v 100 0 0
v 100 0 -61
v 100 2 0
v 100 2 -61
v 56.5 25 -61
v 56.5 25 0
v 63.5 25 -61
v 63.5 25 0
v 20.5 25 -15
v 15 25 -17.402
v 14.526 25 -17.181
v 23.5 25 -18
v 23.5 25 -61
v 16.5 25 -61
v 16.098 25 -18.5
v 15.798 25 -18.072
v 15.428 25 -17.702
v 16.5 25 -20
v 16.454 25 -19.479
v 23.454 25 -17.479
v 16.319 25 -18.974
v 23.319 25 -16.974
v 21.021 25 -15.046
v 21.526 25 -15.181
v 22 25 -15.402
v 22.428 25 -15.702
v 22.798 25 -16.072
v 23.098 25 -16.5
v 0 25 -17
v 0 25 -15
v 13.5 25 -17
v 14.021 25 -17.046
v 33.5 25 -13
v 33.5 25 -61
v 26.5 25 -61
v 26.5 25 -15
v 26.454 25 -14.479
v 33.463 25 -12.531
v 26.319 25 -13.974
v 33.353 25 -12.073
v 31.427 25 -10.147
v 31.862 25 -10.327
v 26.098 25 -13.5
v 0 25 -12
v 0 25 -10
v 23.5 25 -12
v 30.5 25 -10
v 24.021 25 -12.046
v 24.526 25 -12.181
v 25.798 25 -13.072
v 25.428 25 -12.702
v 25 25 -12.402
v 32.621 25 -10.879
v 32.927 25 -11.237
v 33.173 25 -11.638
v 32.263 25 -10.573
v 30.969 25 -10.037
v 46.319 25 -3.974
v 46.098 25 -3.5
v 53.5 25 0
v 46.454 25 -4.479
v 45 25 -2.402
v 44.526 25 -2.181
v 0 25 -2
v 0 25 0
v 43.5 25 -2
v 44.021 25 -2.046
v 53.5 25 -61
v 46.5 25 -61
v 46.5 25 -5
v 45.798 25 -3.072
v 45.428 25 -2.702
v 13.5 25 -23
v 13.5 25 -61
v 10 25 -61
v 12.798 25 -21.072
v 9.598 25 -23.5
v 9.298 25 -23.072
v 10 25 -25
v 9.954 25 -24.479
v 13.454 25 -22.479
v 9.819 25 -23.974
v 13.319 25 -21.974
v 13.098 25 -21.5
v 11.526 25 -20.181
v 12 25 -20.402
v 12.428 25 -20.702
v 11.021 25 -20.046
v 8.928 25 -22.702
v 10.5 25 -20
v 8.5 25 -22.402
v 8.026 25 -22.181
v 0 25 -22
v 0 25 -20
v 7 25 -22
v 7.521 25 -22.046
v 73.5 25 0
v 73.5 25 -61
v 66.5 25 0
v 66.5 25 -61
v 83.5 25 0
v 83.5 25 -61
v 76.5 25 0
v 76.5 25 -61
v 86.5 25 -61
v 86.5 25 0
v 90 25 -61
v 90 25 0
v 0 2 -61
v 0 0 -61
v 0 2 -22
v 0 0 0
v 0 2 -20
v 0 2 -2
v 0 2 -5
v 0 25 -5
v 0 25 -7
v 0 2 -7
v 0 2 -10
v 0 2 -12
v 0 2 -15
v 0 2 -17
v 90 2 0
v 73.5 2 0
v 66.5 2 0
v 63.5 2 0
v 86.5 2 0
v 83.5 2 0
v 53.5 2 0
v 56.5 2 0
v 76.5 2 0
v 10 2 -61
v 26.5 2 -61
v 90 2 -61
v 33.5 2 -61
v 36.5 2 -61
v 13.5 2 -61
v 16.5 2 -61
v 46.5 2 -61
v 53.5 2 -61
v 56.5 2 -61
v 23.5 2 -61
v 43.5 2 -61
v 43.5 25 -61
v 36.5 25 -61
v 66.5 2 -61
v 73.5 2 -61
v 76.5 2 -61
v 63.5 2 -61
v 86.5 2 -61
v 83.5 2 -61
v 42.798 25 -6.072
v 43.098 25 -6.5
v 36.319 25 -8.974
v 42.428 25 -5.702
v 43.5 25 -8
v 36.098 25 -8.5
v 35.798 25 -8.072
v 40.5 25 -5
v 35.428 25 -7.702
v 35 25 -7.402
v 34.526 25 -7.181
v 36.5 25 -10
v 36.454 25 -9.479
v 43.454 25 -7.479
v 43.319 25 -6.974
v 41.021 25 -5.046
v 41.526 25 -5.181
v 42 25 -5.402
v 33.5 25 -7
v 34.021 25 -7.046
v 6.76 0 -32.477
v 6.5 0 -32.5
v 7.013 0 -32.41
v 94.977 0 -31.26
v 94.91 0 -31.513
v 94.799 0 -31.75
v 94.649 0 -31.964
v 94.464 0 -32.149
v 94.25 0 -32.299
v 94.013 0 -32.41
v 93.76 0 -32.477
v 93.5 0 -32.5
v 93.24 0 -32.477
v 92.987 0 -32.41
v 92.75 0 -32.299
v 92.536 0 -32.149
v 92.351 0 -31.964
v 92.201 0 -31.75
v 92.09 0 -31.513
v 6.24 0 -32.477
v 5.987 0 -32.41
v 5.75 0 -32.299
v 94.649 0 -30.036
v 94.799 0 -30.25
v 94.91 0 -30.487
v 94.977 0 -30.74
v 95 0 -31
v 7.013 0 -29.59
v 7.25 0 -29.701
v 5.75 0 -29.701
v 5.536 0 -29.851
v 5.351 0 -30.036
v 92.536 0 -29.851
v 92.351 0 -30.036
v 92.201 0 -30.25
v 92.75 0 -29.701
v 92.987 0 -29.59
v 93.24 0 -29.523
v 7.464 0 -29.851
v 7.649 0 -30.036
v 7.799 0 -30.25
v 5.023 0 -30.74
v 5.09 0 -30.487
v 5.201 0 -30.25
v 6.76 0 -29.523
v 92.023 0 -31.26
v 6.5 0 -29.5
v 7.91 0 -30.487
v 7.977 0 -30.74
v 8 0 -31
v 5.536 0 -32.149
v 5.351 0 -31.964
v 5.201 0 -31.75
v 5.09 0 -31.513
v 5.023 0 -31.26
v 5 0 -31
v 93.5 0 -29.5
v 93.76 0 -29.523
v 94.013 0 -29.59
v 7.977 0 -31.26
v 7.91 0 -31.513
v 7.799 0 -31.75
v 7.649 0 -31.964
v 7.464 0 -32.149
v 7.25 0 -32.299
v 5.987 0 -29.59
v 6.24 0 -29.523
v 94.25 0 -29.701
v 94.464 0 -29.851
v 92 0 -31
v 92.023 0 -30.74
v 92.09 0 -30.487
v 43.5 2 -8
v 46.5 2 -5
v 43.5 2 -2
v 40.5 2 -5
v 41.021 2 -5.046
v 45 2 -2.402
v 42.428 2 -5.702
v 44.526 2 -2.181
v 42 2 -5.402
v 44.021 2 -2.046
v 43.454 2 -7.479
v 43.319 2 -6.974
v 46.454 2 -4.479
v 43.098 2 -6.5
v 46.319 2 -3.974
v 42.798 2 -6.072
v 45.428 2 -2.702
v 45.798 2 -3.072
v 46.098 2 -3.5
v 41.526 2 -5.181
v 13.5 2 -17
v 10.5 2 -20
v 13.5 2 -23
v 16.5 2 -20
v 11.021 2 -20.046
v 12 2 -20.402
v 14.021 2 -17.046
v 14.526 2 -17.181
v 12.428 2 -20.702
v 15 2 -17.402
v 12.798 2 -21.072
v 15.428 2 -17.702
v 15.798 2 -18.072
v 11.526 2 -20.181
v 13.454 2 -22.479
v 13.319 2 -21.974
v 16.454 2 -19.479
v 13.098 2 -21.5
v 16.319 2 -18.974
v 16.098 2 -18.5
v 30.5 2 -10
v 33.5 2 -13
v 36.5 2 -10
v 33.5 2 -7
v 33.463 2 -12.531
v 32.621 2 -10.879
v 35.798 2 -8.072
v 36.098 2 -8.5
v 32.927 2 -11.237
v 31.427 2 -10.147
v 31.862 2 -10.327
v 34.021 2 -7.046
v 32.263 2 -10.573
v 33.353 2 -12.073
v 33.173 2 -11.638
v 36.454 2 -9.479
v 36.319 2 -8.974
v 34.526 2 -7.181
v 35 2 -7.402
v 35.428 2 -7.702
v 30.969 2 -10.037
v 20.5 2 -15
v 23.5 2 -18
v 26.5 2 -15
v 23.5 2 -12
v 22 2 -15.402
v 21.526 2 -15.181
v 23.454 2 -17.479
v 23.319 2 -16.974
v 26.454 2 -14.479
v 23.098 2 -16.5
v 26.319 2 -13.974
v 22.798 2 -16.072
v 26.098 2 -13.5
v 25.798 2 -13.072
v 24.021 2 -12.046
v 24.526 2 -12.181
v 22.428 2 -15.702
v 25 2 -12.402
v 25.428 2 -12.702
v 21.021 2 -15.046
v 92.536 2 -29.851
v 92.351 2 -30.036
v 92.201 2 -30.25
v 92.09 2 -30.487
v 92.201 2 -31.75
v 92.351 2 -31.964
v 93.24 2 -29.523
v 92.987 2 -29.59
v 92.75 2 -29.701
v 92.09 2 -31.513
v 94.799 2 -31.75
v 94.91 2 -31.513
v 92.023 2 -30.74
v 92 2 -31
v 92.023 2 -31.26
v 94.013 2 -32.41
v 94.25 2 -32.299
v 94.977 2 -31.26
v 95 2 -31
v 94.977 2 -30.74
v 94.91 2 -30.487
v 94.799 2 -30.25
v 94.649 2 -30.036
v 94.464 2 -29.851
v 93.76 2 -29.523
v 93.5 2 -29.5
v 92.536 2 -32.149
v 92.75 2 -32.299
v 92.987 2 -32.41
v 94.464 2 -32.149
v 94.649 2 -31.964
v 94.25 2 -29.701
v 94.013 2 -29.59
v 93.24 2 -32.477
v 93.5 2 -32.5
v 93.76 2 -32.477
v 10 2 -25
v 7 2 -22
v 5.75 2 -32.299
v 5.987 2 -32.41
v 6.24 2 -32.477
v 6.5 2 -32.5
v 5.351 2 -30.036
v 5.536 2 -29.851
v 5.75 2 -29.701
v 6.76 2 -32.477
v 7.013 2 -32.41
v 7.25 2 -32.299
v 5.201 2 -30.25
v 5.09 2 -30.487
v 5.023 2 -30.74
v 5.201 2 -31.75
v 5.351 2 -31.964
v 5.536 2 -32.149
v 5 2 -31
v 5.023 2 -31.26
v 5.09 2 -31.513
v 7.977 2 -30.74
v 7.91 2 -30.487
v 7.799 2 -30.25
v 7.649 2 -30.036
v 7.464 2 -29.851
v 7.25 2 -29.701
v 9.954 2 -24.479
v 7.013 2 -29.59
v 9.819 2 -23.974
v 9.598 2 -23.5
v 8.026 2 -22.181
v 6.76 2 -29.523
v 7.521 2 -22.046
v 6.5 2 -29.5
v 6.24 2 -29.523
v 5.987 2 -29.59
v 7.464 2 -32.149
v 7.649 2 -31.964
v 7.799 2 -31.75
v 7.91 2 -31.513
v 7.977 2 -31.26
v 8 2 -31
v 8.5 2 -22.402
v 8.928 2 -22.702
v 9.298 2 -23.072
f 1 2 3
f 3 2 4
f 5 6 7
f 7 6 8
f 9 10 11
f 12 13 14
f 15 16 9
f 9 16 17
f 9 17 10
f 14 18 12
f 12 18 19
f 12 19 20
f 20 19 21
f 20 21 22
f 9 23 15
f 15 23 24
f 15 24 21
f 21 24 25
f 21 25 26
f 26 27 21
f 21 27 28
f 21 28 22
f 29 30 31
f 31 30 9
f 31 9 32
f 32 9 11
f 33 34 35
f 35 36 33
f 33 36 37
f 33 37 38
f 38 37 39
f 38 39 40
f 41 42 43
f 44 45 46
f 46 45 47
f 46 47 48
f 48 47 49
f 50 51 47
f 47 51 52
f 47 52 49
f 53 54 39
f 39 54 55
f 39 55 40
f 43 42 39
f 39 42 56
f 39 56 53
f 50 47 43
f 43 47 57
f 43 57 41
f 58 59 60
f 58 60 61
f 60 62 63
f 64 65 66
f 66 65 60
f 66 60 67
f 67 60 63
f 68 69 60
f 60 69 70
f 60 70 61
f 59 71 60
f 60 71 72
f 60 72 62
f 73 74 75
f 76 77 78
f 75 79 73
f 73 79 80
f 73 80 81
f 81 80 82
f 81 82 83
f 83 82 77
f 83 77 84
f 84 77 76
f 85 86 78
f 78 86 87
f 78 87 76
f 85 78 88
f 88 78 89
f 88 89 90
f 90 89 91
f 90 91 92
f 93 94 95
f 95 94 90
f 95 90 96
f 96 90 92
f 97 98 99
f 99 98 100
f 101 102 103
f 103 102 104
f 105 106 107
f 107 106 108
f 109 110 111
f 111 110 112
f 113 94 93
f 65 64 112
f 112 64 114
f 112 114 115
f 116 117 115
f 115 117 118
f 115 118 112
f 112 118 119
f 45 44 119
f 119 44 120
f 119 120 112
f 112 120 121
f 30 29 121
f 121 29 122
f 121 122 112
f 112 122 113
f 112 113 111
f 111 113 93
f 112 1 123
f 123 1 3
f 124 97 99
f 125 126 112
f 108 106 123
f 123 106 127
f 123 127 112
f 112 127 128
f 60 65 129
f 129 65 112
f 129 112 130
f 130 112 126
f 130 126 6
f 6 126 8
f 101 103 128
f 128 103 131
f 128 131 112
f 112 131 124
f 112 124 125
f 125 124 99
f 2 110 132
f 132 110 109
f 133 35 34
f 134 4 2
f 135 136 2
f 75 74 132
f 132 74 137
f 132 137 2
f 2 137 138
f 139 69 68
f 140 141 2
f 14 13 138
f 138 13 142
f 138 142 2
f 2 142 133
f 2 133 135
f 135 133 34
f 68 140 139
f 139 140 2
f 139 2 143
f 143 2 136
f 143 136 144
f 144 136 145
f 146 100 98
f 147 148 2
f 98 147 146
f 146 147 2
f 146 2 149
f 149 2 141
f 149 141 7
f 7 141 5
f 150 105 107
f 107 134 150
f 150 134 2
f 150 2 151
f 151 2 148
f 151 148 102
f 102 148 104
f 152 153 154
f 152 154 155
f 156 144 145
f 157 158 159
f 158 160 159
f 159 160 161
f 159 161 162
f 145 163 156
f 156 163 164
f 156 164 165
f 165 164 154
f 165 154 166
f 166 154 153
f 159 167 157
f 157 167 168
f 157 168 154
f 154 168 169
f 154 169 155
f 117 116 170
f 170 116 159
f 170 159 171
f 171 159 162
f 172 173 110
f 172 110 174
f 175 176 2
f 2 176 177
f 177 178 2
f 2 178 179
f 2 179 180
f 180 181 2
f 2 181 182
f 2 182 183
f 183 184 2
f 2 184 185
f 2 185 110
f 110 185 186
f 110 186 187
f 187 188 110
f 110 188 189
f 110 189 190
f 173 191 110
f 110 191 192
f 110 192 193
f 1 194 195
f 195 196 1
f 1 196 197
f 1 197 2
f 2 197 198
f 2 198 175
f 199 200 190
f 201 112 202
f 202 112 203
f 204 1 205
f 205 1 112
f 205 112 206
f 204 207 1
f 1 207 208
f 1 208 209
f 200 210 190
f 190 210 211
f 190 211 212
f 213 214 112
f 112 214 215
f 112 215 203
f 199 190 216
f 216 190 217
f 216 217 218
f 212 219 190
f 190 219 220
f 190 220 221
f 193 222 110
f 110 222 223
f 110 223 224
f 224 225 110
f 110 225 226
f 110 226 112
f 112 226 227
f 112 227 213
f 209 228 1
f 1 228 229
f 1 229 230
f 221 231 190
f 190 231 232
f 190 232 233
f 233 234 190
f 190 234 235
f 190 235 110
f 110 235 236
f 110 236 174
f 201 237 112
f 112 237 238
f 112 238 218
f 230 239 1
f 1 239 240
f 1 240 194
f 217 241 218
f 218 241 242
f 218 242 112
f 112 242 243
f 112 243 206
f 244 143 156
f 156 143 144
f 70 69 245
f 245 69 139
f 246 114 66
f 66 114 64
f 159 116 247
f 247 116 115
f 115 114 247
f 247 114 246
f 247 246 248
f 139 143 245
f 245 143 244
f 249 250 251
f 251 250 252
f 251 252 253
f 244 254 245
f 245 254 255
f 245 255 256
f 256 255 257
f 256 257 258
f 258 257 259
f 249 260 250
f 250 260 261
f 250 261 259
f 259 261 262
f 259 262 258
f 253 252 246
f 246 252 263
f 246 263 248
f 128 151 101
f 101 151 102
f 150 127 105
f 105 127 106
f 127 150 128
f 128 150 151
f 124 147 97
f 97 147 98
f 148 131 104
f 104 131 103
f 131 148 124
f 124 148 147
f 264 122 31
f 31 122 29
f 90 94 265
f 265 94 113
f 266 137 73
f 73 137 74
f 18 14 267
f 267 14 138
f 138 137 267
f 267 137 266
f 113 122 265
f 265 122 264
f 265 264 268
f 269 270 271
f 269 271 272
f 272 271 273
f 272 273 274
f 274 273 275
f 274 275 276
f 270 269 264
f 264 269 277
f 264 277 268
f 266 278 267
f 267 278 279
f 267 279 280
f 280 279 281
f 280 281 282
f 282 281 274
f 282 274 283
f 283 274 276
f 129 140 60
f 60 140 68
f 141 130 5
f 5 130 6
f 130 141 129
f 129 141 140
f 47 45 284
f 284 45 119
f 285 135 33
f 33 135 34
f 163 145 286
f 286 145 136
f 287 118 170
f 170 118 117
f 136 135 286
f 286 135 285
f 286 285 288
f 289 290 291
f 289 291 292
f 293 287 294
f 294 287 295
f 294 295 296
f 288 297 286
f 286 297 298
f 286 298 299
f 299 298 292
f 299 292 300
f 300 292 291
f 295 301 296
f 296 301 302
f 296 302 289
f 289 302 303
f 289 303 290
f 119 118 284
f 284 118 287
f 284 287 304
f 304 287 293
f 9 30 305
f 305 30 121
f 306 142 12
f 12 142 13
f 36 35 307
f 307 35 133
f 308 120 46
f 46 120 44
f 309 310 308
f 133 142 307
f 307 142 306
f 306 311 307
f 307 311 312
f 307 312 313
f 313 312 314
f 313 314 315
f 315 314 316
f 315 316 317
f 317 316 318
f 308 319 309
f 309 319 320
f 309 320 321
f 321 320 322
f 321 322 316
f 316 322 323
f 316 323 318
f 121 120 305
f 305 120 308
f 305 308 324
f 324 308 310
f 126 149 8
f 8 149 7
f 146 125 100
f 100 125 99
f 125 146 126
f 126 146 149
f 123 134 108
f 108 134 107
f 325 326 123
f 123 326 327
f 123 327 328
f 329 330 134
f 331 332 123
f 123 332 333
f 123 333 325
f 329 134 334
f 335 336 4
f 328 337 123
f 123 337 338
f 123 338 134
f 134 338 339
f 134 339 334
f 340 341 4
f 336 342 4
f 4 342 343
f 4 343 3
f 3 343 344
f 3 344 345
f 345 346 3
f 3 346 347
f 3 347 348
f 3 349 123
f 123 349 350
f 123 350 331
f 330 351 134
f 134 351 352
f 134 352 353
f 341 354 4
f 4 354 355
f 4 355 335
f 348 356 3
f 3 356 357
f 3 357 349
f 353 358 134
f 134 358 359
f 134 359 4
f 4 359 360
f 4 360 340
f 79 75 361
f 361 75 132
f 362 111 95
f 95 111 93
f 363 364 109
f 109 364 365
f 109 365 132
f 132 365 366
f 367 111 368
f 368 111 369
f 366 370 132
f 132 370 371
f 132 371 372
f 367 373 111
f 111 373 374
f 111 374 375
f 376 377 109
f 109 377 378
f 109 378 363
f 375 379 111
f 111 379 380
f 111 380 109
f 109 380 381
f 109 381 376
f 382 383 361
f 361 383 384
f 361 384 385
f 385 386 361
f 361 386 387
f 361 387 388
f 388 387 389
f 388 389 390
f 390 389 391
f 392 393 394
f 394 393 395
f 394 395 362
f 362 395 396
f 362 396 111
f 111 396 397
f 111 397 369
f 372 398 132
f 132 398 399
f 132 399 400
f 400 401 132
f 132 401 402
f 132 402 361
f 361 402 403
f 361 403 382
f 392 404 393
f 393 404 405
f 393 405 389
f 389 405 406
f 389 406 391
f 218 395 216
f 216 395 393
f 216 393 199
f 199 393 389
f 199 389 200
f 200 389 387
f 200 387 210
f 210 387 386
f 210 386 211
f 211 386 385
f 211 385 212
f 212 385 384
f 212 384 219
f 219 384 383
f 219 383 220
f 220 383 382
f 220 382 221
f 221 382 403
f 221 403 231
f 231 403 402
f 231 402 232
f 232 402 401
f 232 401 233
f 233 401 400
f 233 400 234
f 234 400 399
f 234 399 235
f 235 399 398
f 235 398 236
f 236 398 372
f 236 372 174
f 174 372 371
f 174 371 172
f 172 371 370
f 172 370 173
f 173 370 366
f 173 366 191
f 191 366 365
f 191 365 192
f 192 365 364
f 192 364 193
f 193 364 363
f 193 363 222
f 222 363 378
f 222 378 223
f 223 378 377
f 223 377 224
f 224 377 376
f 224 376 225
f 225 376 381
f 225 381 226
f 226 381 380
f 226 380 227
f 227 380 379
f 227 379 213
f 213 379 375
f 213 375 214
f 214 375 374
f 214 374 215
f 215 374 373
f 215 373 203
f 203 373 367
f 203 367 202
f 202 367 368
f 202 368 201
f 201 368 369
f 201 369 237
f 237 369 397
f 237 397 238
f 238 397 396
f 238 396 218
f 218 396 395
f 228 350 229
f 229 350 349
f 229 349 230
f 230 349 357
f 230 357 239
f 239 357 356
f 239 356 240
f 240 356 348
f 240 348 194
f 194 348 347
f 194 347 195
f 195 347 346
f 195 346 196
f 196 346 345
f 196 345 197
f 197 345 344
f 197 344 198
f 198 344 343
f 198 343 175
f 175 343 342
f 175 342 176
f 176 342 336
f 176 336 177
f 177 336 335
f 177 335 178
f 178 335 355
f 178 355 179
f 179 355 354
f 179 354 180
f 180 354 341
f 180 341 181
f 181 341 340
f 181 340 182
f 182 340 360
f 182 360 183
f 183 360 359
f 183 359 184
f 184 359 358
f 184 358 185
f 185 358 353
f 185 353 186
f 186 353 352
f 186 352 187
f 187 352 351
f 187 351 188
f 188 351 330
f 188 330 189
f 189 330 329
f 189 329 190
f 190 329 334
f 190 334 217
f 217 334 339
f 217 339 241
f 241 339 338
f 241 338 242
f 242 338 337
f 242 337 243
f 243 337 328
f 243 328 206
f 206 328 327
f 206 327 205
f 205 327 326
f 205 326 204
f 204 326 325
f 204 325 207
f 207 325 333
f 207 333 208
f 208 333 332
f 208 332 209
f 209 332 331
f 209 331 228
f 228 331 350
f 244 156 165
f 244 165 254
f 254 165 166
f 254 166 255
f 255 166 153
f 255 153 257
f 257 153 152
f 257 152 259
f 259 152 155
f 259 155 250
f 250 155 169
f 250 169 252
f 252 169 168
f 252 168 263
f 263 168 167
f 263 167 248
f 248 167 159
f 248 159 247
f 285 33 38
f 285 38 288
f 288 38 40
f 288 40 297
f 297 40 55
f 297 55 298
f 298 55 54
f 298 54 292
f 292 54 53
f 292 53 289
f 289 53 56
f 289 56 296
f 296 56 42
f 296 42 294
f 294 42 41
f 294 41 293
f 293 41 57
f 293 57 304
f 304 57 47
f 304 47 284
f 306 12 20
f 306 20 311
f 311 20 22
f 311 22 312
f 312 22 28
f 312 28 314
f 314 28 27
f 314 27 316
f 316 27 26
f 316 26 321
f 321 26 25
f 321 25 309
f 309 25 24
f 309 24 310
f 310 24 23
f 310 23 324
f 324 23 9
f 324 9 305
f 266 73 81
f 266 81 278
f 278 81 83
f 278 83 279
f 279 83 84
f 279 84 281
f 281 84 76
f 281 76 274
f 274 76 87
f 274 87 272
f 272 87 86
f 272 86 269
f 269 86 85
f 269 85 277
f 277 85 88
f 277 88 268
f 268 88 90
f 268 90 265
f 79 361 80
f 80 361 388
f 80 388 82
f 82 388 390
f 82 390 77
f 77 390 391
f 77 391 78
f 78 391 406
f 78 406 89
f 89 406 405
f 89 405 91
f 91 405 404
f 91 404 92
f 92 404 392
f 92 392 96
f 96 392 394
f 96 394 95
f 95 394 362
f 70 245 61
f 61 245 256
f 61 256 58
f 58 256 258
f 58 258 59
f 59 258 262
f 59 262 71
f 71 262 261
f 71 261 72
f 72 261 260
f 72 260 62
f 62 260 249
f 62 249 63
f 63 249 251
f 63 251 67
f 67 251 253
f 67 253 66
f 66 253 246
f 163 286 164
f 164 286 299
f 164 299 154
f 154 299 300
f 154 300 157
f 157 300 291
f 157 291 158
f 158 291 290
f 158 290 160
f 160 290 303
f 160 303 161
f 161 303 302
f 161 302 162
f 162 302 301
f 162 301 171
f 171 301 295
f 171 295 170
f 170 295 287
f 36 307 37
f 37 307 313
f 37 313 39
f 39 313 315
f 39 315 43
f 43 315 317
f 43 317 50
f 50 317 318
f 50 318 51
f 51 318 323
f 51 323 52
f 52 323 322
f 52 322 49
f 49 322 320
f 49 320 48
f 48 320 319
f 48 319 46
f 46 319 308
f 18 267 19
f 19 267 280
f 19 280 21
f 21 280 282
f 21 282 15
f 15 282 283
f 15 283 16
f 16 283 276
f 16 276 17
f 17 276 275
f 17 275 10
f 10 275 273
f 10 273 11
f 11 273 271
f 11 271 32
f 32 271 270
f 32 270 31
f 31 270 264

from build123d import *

# Parameters (mm, degrees)
PROFILESKETCH1_W                = 100
PROFILESKETCH1_H                = 61
PROFILEBOSS_EXTRUDE1_DEPTH      = 25
CABLE_GUIDESSKETCH2_W           = 3
CABLE_GUIDESSKETCH2_H           = 61
CABLEGUIDESCUT_EXTRUDE1_DEPTH   = 23
FASTENERTABSKETCH1_W            = 10
FASTENERTABSKETCH1_H            = 39
FASTENERTABSKETCH1_H_2          = 61
FASTENERTABCUT_EXTRUDE1_DEPTH   = 23
FASTENINGHOLESKETCH2_R          = 1.5
FASTENINGHOLECUT_EXTRUDE2_DEPTH = 120.774788666
FILLET1_R                       = 3
FILLET2_R                       = 3


with BuildPart() as part:
    # ProfileSketch1 → ProfileBoss-Extrude1 (new body)
    with BuildSketch(Plane(origin=(0, 0, 0), x_dir=(1, 0, 0), z_dir=(0, 1, 0))):
        with Locations((50, 30.5)):
            Rectangle(PROFILESKETCH1_W, PROFILESKETCH1_H)
    extrude(amount=PROFILEBOSS_EXTRUDE1_DEPTH)

    # Cable GuidesSketch2 → CableGuidesCut-Extrude1 (cut)
    with BuildSketch(Plane(origin=(0, 25, 0), x_dir=(1, 0, 0), z_dir=(0, 1, 0))):
        Polygon((43.5, 61), (46.5, 61), (46.5, 2), (0, 2), (0, 5), (43.5, 5), align=None)
        Polygon((0, 20), (0, 17), (16.5, 17), (16.5, 61), (13.5, 61), (13.5, 20), align=None)
        Polygon((0, 7), (36.5, 7), (36.5, 61), (33.5, 61), (33.5, 10), (0, 10), align=None)
        Polygon((0, 12), (26.5, 12), (26.5, 61), (23.5, 61), (23.5, 15), (0, 15), align=None)
        with Locations((55, 30.5)):
            Rectangle(CABLE_GUIDESSKETCH2_W, CABLE_GUIDESSKETCH2_H)
        with Locations((65, 30.5)):
            Rectangle(CABLE_GUIDESSKETCH2_W, CABLE_GUIDESSKETCH2_H)
        with Locations((75, 30.5)):
            Rectangle(CABLE_GUIDESSKETCH2_W, CABLE_GUIDESSKETCH2_H)
        with Locations((85, 30.5)):
            Rectangle(CABLE_GUIDESSKETCH2_W, CABLE_GUIDESSKETCH2_H)
    extrude(amount=-CABLEGUIDESCUT_EXTRUDE1_DEPTH, mode=Mode.SUBTRACT)

    # FastenerTabSketch1 → FastenerTabCut-Extrude1 (cut)
    with BuildSketch(Plane(origin=(0, 25, 0), x_dir=(1, 0, 0), z_dir=(0, 1, 0))):
        with Locations((5, 41.5)):
            Rectangle(FASTENERTABSKETCH1_W, FASTENERTABSKETCH1_H)
        with Locations((95, 30.5)):
            Rectangle(FASTENERTABSKETCH1_W, FASTENERTABSKETCH1_H_2)
    extrude(amount=-FASTENERTABCUT_EXTRUDE1_DEPTH, mode=Mode.SUBTRACT)

    # FasteningHoleSketch2 → FasteningHoleCut-Extrude2 (cut, through all)
    with BuildSketch(Plane(origin=(0, 25, 0), x_dir=(1, 0, 0), z_dir=(0, 1, 0))):
        with Locations(Location((6.5, 31, 0), (0, 0, 270))):
            Circle(FASTENINGHOLESKETCH2_R)
        with Locations(Location((93.5, 31, 0), (0, 0, 270))):
            Circle(FASTENINGHOLESKETCH2_R)
    extrude(amount=-FASTENINGHOLECUT_EXTRUDE2_DEPTH, mode=Mode.SUBTRACT)

    # Fillet1
    fillet1_edges = [part.edges().sort_by_distance(p)[0] for p in [
        (43.5, 13.5, -5),
        (23.5, 13.5, -15),
        (33.5, 13.5, -10),
        (13.5, 13.5, -20),
    ]]
    fillet(fillet1_edges, radius=FILLET1_R)

    # Fillet2
    fillet2_edges = [part.edges().sort_by_distance(p)[0] for p in [
        (46.5, 13.5, -2),
        (10, 13.5, -22),
        (26.5, 13.5, -12),
        (36.5, 13.5, -7),
        (16.5, 13.5, -17),
    ]]
    fillet(fillet2_edges, radius=FILLET2_R)


solid = part.part
